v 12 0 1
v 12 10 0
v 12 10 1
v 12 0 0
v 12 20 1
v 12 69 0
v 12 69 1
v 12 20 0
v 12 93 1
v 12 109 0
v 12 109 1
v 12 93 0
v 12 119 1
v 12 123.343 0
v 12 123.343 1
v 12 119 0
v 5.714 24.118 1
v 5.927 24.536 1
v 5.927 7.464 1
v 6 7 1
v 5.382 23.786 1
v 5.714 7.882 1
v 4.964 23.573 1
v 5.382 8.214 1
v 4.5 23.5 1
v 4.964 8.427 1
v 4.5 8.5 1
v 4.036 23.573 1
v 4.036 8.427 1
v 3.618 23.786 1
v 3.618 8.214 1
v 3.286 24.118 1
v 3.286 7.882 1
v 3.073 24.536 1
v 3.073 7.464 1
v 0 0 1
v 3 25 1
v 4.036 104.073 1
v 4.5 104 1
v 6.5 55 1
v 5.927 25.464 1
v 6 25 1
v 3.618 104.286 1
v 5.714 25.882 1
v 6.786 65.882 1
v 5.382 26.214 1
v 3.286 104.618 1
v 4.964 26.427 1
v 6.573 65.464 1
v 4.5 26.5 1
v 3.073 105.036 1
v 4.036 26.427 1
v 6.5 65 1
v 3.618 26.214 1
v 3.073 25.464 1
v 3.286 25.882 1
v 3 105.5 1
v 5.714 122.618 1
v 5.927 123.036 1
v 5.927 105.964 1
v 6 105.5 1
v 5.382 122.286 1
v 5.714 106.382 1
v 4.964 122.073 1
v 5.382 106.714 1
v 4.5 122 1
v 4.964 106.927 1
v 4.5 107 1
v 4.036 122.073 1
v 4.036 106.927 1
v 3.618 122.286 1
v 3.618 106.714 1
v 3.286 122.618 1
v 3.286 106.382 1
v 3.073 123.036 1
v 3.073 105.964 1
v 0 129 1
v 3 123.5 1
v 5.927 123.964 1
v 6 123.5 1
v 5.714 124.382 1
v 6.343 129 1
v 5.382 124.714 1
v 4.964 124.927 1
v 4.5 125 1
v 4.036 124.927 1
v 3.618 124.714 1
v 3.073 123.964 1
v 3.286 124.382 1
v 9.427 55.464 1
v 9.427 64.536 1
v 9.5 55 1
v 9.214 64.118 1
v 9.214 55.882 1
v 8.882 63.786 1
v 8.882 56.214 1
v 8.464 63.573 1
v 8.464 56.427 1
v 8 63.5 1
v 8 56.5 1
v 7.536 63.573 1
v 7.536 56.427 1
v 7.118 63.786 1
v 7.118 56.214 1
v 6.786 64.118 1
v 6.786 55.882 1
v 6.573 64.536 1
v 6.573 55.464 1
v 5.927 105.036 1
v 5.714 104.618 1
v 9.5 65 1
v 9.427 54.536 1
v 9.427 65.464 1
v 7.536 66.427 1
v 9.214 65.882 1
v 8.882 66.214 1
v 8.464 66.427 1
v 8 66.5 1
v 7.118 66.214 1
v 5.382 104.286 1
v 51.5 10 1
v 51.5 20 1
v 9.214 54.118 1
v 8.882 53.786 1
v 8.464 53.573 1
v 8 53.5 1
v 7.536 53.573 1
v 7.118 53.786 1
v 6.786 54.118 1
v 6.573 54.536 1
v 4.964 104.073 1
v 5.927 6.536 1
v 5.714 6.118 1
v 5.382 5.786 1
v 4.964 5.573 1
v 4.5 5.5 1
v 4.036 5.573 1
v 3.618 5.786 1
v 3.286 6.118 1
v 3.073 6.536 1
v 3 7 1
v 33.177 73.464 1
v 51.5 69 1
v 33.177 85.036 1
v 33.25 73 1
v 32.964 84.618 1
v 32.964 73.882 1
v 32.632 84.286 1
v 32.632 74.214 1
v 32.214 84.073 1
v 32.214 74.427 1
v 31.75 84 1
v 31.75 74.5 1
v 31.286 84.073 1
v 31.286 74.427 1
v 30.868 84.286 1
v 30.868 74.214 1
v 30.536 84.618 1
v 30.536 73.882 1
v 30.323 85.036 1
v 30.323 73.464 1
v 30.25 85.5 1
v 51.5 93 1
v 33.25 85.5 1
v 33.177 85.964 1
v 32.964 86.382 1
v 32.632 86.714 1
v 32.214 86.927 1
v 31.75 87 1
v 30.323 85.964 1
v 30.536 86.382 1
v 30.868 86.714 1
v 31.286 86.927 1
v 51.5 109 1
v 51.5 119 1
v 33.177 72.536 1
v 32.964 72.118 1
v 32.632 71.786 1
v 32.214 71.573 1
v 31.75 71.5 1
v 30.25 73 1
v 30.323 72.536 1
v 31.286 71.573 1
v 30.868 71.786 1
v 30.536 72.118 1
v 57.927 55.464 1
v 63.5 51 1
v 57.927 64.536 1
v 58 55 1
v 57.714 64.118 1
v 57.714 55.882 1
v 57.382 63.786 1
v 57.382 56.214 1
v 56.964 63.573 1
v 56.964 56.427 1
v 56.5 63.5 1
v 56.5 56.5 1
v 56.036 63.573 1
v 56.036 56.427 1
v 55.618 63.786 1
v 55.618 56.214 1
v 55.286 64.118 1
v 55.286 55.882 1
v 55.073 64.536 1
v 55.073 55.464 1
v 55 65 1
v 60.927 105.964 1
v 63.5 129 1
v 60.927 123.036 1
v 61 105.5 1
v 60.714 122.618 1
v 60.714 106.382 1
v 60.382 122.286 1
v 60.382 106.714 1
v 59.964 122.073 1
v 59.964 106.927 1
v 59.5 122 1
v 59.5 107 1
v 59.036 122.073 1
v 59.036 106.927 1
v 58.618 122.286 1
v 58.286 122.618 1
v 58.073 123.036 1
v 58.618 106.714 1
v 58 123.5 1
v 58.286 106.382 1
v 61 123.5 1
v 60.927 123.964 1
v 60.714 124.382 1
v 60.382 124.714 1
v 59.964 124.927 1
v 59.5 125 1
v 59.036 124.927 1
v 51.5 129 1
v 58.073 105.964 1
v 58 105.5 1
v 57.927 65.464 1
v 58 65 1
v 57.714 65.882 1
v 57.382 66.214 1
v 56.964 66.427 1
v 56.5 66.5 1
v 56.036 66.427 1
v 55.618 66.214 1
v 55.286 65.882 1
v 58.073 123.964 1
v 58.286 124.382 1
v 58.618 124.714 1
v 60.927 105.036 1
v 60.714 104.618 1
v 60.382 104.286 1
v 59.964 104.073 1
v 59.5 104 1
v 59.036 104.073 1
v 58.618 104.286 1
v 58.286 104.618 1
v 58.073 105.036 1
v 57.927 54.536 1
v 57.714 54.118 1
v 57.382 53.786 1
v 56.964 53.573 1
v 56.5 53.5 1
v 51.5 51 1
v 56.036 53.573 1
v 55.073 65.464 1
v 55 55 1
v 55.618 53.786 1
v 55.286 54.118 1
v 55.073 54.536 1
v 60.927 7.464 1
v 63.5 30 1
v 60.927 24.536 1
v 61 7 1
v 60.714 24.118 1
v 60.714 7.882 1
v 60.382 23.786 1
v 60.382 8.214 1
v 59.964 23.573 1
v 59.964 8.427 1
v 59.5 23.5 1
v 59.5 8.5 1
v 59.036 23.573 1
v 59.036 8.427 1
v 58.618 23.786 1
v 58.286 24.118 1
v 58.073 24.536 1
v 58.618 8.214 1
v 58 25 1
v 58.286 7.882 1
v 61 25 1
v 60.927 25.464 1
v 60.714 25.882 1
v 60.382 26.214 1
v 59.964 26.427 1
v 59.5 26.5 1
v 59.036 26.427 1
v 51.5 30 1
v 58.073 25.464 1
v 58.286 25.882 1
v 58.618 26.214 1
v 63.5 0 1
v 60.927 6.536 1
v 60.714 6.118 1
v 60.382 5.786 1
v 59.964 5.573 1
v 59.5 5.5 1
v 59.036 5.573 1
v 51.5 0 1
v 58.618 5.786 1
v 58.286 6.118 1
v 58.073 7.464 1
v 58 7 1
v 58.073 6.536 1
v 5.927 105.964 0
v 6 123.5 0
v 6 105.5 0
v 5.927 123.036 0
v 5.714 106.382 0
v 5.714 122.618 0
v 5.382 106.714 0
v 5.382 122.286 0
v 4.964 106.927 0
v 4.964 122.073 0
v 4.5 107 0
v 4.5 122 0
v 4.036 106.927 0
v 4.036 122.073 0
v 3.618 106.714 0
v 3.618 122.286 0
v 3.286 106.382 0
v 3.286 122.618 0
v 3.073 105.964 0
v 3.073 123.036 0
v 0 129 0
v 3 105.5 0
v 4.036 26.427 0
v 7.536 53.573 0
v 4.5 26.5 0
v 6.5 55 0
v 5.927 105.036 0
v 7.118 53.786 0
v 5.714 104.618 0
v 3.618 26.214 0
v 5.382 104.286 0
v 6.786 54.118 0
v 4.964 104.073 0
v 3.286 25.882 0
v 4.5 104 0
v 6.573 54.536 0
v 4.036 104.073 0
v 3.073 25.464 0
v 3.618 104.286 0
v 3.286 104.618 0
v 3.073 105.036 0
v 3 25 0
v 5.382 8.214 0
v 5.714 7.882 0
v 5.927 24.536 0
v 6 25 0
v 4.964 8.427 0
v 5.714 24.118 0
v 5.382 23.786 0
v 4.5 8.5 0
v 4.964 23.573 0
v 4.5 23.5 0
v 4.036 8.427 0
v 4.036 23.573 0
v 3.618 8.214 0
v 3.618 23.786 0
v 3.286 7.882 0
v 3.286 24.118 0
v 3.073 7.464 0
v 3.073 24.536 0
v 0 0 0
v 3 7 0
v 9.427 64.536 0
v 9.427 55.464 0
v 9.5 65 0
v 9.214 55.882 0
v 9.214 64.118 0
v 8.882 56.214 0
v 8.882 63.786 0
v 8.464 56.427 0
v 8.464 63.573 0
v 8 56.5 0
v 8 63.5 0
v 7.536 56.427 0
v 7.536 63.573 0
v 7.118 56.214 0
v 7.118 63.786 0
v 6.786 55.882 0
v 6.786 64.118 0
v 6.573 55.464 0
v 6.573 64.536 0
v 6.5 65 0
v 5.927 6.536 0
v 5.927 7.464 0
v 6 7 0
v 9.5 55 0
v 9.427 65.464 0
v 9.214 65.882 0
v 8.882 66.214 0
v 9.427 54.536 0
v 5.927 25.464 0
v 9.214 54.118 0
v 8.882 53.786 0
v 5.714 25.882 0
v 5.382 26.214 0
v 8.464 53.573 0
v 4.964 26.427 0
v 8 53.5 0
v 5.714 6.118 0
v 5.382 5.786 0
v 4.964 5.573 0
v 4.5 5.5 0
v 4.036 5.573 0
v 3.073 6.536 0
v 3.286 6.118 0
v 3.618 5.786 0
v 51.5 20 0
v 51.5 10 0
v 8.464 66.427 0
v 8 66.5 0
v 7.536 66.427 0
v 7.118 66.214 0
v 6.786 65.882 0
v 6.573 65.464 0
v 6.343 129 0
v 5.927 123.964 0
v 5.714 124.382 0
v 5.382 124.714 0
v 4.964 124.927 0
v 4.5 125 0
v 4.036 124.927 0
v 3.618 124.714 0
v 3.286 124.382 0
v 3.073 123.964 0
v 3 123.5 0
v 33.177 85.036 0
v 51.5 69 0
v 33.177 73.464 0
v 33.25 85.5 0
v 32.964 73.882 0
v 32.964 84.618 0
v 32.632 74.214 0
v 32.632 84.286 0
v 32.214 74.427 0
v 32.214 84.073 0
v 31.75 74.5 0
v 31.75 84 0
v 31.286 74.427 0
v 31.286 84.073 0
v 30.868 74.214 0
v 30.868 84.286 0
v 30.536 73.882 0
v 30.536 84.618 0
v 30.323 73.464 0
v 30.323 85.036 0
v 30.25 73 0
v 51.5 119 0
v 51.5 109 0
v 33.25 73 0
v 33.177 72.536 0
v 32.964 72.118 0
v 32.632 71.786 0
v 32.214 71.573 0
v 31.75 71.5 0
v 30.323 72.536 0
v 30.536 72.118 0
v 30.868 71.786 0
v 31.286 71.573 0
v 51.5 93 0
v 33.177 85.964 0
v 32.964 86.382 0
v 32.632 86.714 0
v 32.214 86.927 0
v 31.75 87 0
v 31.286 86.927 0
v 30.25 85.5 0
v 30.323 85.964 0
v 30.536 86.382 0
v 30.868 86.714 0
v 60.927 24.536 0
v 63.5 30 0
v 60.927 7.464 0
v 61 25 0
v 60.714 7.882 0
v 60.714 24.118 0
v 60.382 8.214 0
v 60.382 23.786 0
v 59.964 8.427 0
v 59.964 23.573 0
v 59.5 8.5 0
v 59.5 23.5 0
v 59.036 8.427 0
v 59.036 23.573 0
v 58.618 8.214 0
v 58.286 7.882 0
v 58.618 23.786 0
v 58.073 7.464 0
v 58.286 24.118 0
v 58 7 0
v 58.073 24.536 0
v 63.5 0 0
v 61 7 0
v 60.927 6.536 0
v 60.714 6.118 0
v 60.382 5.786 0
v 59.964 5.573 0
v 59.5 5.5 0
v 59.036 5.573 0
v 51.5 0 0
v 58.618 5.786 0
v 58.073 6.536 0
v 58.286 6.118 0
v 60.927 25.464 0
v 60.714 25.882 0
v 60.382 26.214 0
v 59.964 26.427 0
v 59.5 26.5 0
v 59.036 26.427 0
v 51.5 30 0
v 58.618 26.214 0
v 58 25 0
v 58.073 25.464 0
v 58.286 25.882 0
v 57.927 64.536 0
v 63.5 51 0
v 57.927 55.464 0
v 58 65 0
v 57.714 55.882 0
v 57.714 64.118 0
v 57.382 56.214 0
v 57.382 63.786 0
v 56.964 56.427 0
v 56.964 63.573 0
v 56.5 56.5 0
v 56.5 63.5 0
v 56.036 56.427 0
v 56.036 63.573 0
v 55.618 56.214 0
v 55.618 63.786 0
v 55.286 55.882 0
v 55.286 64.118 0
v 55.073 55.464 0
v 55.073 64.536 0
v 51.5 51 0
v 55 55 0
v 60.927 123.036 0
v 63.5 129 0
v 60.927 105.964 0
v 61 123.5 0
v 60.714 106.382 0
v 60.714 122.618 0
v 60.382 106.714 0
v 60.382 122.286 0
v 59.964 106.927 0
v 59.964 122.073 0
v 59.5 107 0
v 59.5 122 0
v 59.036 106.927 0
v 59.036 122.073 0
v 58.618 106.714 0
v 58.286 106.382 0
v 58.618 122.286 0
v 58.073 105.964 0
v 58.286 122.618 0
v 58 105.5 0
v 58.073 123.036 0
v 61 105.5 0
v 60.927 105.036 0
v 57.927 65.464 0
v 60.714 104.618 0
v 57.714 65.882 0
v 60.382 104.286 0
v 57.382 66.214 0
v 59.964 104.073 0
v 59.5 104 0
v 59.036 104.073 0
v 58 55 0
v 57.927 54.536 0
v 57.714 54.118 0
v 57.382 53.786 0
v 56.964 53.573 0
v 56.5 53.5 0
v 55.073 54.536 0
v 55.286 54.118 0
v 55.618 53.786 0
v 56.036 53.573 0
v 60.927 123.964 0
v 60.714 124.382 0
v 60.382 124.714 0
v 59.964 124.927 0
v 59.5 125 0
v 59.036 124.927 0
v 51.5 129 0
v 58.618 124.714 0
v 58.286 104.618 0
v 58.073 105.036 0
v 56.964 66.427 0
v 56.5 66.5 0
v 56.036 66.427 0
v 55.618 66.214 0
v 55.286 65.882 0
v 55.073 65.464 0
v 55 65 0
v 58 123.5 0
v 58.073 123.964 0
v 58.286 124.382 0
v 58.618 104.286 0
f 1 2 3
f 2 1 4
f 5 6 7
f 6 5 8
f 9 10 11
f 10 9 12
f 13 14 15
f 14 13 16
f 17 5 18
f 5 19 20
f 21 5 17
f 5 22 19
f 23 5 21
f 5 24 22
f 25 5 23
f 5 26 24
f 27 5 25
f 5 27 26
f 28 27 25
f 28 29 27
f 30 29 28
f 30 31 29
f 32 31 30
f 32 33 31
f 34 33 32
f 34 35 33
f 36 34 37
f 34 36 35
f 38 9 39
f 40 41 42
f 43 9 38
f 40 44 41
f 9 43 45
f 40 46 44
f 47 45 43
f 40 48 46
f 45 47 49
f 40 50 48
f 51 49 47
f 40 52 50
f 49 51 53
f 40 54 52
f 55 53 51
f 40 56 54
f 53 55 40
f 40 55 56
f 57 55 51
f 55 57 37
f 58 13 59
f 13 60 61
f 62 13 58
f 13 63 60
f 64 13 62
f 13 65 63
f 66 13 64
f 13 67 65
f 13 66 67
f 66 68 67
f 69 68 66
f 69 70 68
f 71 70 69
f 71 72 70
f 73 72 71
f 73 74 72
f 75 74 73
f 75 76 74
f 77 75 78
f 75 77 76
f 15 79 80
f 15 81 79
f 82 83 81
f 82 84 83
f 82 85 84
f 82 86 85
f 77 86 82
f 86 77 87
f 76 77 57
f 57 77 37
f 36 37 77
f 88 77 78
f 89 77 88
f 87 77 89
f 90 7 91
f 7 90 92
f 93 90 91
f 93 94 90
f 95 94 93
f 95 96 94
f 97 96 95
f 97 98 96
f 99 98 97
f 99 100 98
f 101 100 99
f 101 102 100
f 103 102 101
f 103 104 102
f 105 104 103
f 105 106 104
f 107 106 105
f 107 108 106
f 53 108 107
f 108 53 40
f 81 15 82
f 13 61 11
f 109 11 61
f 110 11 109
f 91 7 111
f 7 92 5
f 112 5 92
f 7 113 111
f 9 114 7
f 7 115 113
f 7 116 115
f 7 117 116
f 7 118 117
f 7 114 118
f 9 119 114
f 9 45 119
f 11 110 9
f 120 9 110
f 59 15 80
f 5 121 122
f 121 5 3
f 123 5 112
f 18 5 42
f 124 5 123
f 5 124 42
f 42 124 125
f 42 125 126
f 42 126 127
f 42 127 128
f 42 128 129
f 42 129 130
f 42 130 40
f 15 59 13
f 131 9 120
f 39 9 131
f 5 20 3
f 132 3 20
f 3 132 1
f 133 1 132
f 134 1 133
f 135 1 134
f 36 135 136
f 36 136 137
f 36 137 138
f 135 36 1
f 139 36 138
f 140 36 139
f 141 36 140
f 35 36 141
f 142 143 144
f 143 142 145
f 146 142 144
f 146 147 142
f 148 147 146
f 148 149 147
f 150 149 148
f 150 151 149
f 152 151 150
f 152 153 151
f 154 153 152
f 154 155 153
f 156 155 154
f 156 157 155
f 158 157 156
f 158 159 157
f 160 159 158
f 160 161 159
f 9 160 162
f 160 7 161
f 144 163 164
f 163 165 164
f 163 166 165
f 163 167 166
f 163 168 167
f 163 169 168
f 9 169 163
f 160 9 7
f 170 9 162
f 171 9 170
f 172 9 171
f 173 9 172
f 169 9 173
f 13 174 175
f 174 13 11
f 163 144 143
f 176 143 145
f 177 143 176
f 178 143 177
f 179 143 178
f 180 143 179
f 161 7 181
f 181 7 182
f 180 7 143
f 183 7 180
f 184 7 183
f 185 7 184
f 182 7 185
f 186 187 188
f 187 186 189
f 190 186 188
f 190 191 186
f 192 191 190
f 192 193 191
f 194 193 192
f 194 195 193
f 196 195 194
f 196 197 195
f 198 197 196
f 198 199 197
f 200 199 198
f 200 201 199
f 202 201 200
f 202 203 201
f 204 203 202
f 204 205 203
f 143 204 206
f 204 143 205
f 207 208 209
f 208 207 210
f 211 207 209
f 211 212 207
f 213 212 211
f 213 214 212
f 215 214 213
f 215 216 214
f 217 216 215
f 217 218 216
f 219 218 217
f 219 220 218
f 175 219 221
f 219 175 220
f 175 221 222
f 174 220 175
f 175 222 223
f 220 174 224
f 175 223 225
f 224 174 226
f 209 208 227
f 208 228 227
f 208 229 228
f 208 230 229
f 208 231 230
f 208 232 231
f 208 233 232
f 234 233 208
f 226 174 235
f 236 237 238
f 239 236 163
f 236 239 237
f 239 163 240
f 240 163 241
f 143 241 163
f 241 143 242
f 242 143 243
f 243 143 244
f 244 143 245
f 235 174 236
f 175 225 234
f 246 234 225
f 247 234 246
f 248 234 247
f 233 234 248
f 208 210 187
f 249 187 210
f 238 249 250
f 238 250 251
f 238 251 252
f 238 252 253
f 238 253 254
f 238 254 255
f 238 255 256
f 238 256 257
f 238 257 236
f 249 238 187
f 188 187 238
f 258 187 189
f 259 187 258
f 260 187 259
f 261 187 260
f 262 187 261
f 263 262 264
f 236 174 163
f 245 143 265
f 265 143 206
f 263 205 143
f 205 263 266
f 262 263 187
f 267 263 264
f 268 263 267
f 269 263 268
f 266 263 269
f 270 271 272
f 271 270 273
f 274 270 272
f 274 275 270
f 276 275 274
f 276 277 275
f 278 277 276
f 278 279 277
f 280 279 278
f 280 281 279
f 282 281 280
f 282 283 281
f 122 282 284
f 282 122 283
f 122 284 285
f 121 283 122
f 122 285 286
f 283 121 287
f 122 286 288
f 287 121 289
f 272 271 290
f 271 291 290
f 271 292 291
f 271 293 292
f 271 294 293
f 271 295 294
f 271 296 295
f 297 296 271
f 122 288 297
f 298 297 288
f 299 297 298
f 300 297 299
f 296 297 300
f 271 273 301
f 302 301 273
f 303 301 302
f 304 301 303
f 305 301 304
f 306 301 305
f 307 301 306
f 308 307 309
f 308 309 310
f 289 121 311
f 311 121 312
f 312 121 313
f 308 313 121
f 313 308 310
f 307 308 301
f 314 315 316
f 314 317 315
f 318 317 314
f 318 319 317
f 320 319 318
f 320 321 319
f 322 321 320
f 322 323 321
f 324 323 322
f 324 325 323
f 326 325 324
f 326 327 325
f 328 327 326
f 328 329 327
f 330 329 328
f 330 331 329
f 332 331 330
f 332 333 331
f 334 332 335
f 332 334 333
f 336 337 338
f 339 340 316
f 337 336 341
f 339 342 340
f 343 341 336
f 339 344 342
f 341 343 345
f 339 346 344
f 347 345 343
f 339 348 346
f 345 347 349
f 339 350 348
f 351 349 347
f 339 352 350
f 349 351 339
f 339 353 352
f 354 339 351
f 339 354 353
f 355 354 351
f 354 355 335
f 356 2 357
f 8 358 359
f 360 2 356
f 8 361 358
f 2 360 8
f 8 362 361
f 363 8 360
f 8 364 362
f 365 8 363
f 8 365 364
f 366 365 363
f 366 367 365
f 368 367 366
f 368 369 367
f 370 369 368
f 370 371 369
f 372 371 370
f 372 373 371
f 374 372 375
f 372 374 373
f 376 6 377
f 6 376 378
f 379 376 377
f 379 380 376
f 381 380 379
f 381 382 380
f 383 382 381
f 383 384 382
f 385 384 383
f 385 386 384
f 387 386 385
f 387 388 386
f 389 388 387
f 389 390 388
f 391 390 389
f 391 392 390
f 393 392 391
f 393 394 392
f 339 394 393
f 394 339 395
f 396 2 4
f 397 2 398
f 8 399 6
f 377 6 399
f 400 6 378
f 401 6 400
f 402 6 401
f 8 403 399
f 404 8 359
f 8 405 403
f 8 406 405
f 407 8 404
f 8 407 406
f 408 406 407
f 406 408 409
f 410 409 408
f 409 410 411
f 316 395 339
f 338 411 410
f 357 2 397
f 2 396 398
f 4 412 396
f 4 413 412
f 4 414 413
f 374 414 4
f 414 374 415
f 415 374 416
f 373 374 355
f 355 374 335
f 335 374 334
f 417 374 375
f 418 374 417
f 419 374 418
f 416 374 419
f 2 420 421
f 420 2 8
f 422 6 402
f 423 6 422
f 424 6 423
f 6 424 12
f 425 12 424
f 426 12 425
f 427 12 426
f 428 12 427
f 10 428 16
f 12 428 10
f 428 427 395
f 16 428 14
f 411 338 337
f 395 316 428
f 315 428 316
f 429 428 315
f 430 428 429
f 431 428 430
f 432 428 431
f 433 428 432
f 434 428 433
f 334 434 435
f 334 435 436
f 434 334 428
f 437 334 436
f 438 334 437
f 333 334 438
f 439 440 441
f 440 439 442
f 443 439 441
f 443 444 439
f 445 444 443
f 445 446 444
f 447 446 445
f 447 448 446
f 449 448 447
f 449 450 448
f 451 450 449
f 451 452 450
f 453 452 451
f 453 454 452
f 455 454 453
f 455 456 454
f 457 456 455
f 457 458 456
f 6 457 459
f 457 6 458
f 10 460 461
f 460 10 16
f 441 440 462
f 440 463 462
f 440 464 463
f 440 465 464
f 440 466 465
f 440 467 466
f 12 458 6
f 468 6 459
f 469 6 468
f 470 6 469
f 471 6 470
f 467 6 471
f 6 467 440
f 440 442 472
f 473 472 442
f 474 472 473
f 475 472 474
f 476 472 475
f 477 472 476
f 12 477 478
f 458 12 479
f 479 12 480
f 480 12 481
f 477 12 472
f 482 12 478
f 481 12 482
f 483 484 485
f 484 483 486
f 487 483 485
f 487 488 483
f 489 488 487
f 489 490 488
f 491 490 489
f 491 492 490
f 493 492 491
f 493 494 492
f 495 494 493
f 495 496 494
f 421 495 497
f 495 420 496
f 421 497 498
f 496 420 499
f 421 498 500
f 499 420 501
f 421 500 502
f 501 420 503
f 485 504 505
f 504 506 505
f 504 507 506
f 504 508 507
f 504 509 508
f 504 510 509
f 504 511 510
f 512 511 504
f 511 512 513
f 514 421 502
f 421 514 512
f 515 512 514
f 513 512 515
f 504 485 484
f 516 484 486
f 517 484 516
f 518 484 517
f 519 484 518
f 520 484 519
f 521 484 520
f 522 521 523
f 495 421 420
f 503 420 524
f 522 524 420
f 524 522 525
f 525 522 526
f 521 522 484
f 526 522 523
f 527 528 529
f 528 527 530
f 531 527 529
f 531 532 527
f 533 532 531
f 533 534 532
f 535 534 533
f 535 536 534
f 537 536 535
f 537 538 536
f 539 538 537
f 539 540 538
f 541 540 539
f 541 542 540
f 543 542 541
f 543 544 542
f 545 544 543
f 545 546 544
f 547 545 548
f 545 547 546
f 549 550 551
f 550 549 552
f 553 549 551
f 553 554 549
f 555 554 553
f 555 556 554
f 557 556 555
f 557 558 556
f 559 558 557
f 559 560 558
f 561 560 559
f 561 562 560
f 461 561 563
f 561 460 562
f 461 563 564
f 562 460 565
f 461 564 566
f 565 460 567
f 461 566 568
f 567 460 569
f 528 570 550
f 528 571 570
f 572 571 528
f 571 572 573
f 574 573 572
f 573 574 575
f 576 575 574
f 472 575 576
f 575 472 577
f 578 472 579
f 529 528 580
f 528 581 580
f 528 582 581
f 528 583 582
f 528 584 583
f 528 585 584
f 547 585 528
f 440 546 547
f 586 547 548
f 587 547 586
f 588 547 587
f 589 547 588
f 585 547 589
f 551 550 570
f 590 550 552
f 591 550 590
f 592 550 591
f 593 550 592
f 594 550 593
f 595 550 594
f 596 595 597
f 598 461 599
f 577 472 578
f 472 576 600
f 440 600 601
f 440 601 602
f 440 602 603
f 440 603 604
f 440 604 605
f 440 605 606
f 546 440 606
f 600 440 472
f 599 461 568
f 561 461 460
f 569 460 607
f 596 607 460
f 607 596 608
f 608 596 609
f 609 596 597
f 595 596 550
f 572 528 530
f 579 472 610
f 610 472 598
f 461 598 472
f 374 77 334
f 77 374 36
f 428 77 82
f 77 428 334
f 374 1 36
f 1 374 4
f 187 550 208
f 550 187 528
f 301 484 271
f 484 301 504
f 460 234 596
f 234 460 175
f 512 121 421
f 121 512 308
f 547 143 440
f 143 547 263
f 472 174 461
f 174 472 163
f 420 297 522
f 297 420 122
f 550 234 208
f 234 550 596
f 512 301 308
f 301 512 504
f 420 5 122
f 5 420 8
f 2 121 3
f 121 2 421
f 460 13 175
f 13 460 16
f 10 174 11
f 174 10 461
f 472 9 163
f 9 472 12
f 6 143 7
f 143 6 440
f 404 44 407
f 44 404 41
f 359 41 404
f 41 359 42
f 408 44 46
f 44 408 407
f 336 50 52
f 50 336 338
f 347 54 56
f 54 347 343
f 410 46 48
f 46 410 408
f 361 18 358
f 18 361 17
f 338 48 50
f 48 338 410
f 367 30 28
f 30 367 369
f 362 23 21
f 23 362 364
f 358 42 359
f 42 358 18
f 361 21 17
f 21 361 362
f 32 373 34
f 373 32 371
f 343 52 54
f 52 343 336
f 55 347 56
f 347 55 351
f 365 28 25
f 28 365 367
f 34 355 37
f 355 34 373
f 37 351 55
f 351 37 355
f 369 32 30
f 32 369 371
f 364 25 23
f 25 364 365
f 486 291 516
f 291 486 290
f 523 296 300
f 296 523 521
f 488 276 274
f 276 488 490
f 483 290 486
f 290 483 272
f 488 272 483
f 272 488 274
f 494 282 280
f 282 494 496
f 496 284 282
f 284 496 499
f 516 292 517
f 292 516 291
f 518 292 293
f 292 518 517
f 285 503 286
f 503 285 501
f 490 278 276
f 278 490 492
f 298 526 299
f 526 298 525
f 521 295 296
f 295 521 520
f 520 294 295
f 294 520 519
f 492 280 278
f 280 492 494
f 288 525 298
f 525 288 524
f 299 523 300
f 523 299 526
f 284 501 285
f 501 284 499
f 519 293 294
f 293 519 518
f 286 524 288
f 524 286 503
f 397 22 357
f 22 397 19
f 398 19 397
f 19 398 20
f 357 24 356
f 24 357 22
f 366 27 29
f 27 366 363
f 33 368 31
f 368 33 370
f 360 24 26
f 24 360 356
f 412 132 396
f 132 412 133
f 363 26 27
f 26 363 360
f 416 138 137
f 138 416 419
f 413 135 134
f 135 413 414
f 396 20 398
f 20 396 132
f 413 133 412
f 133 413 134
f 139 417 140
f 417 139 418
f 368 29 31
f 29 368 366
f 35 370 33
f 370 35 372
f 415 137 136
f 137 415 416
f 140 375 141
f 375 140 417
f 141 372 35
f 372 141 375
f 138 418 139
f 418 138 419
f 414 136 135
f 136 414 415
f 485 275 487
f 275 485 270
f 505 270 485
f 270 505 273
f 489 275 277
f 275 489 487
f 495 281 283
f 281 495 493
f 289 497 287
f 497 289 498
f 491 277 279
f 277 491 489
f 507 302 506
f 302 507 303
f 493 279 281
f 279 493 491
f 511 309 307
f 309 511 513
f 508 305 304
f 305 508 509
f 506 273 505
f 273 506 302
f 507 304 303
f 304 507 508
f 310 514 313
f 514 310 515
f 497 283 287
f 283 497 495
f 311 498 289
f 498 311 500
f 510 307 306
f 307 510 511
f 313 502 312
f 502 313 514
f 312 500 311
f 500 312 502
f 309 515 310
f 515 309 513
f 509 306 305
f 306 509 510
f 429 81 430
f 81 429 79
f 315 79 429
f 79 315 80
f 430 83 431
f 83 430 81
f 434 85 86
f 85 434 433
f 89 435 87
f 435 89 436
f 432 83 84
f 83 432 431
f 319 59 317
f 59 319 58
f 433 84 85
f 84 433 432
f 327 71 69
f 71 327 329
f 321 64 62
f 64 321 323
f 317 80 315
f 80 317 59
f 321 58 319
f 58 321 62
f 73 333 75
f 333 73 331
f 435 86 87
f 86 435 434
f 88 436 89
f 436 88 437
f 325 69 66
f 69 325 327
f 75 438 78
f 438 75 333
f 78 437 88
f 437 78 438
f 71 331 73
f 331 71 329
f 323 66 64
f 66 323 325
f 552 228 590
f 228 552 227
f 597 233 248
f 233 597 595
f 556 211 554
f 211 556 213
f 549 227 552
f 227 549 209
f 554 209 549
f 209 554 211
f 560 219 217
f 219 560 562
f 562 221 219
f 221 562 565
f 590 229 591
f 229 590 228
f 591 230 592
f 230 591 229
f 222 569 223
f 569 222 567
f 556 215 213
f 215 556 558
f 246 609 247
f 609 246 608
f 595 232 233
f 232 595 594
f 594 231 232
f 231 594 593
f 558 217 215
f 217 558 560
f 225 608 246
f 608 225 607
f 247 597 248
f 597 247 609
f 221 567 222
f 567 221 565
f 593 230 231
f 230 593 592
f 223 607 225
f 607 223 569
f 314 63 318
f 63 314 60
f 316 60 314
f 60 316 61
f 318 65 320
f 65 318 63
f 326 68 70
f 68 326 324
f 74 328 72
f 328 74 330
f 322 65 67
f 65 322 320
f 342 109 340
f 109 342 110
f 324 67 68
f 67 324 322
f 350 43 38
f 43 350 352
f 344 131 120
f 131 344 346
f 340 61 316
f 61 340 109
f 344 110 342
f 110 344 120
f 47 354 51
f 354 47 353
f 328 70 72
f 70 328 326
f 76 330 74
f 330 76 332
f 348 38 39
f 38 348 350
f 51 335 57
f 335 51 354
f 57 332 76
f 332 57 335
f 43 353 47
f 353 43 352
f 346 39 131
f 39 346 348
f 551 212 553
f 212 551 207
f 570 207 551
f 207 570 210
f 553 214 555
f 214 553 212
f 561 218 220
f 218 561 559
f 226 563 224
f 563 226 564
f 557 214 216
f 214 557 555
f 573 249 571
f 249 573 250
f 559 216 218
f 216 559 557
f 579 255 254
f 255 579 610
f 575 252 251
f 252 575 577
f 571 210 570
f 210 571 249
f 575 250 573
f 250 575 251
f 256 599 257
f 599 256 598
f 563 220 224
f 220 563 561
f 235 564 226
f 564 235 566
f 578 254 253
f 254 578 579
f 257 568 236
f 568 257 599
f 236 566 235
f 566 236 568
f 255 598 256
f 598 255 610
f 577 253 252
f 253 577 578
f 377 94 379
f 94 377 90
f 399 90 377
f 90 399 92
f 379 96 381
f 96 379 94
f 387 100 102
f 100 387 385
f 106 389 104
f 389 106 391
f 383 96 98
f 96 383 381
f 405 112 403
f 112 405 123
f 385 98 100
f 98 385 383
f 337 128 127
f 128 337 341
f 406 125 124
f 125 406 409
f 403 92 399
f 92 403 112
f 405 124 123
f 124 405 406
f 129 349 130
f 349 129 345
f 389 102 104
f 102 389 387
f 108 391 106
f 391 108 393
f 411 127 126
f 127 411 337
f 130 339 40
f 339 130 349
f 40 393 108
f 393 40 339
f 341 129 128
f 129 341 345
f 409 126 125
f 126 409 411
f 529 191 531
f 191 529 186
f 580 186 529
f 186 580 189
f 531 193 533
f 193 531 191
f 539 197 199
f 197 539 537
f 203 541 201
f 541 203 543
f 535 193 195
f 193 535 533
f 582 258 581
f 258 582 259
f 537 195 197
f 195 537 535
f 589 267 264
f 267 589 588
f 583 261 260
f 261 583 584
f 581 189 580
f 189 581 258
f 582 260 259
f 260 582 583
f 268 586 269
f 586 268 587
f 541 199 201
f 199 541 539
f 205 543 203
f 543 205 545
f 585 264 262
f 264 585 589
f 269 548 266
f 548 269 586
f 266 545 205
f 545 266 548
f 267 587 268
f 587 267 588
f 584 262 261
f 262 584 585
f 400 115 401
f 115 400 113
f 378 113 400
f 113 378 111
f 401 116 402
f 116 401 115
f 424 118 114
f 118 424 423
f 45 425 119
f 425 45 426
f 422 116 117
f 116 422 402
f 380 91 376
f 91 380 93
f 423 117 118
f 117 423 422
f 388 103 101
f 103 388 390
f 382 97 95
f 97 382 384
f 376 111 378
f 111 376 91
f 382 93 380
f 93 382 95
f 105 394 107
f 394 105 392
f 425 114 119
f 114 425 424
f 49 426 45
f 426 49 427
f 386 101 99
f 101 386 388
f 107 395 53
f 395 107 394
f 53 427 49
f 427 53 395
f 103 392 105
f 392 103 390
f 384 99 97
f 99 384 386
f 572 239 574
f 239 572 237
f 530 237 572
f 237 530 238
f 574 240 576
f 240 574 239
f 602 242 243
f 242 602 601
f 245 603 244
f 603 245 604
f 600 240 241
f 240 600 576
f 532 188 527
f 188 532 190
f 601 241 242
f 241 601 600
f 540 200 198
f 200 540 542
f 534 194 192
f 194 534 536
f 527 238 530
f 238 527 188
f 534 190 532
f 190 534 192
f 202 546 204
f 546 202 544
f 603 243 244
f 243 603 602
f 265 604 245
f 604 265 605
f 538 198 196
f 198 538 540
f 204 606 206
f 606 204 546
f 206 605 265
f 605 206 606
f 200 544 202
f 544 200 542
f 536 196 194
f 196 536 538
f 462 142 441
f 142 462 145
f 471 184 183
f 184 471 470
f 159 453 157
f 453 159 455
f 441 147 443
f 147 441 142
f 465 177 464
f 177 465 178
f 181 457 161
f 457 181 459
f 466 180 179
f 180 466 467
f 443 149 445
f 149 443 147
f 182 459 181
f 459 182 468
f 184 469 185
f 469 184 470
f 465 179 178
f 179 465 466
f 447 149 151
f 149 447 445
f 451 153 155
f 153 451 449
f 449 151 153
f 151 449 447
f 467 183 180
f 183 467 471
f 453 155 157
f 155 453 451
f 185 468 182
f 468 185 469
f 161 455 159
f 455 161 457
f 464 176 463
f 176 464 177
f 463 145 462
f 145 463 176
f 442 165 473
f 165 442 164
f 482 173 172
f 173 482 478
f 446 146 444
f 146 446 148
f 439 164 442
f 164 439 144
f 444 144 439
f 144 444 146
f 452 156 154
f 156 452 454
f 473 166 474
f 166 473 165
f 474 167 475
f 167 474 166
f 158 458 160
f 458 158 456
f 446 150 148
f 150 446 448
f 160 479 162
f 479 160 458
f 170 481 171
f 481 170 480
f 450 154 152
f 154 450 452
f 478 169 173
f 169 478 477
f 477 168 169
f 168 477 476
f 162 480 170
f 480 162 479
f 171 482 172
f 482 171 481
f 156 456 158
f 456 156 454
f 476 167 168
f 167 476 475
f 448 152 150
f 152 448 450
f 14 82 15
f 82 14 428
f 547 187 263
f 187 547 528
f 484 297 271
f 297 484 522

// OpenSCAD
// v3 of hold bar

// all dimensions are in mm
bar1_width = 12;    // mm
bar1_length = 129;      // was 133
bar1_height = 1;        // final high like 5

board_inner_edge_to_edge = 63.5;
front_edge_to_front_edge = board_inner_edge_to_edge-bar1_width;

hole_r = 3/2;       // 3mm diameter

// middle cross bar
cross_bar3_offset = 69; // offset down
cross_bar3_width = 24;
first_bar3_hole_offset = 73;

module holes() {
    // holes
    union() {
        translate([4.5,7,5]) {
            cylinder(20, hole_r, hole_r, center=true, $fn=20);
        }
        translate([board_inner_edge_to_edge-4,7,5]) {
            cylinder(20, hole_r, hole_r, center=true, $fn=20);
        }
        translate([0,18,0]) {
            translate([4.5,7,5]) {
                cylinder(20, hole_r, hole_r, center=true, $fn=20);
            }
            translate([board_inner_edge_to_edge-4,7,5]) {
                cylinder(20, hole_r, hole_r, center=true, $fn=20);
            }
        }
    }
}
module secondary_holes() {
    union() {
        translate([8,55,5]) {
            cylinder(20, hole_r, hole_r, center=true, $fn=20);
        }
        translate([board_inner_edge_to_edge-7,55,5]) {
            cylinder(20, hole_r, hole_r, center=true, $fn=20);
        }
    }
}

difference() {
    union() {
        // front to back bars
        cube([bar1_width,bar1_length,bar1_height], center=false);

        translate([front_edge_to_front_edge, 0, 0]) {
            cube([bar1_width,bar1_length,bar1_height], center=false);
        }


        cross_bar1_offset = 10;
        cross_bar1_width = 10;

        cross_bar2_width = 10;
        cross_bar2_offset = (bar1_length-10)-cross_bar2_width;

        // cross bars
        translate([0,cross_bar1_offset,0]) {
         cube([board_inner_edge_to_edge, 10, bar1_height], center = false);
        }
        translate([0,cross_bar2_offset,0]) {
         cube([board_inner_edge_to_edge, cross_bar2_width, bar1_height], center = false);
        }

        // middle cross bar
        translate([0,cross_bar3_offset,0]) {
         cube([board_inner_edge_to_edge, cross_bar3_width, bar1_height], center = false);
        }
        

    }

    // remove holes and stuff
    union() {
        // holes on side posts
        holes();
        translate([0,80.5+18,0]) holes();
        // holes for sensors normally - just in case
        secondary_holes();
        translate([0,10,0]) secondary_holes();
        
        // remove corner for component
        translate([bar1_width,bar1_length,0]) rotate([0,0,45]) cube([8,8,bar1_height*4],center=true);        
        // holes on middle bar
        translate([board_inner_edge_to_edge/2,first_bar3_hole_offset,5]) {
            cylinder(20, hole_r, hole_r, center=true, $fn=20);
            translate([0,12.5,0]) {
                cylinder(20, hole_r, hole_r, center=true, $fn=20);
            }
        }
        
        // remove location for back driver
        // 30mm to 52mm
        translate([front_edge_to_front_edge-2,30,-2]) cube([21,21,bar1_height*4],center=false);
        

    }
}
